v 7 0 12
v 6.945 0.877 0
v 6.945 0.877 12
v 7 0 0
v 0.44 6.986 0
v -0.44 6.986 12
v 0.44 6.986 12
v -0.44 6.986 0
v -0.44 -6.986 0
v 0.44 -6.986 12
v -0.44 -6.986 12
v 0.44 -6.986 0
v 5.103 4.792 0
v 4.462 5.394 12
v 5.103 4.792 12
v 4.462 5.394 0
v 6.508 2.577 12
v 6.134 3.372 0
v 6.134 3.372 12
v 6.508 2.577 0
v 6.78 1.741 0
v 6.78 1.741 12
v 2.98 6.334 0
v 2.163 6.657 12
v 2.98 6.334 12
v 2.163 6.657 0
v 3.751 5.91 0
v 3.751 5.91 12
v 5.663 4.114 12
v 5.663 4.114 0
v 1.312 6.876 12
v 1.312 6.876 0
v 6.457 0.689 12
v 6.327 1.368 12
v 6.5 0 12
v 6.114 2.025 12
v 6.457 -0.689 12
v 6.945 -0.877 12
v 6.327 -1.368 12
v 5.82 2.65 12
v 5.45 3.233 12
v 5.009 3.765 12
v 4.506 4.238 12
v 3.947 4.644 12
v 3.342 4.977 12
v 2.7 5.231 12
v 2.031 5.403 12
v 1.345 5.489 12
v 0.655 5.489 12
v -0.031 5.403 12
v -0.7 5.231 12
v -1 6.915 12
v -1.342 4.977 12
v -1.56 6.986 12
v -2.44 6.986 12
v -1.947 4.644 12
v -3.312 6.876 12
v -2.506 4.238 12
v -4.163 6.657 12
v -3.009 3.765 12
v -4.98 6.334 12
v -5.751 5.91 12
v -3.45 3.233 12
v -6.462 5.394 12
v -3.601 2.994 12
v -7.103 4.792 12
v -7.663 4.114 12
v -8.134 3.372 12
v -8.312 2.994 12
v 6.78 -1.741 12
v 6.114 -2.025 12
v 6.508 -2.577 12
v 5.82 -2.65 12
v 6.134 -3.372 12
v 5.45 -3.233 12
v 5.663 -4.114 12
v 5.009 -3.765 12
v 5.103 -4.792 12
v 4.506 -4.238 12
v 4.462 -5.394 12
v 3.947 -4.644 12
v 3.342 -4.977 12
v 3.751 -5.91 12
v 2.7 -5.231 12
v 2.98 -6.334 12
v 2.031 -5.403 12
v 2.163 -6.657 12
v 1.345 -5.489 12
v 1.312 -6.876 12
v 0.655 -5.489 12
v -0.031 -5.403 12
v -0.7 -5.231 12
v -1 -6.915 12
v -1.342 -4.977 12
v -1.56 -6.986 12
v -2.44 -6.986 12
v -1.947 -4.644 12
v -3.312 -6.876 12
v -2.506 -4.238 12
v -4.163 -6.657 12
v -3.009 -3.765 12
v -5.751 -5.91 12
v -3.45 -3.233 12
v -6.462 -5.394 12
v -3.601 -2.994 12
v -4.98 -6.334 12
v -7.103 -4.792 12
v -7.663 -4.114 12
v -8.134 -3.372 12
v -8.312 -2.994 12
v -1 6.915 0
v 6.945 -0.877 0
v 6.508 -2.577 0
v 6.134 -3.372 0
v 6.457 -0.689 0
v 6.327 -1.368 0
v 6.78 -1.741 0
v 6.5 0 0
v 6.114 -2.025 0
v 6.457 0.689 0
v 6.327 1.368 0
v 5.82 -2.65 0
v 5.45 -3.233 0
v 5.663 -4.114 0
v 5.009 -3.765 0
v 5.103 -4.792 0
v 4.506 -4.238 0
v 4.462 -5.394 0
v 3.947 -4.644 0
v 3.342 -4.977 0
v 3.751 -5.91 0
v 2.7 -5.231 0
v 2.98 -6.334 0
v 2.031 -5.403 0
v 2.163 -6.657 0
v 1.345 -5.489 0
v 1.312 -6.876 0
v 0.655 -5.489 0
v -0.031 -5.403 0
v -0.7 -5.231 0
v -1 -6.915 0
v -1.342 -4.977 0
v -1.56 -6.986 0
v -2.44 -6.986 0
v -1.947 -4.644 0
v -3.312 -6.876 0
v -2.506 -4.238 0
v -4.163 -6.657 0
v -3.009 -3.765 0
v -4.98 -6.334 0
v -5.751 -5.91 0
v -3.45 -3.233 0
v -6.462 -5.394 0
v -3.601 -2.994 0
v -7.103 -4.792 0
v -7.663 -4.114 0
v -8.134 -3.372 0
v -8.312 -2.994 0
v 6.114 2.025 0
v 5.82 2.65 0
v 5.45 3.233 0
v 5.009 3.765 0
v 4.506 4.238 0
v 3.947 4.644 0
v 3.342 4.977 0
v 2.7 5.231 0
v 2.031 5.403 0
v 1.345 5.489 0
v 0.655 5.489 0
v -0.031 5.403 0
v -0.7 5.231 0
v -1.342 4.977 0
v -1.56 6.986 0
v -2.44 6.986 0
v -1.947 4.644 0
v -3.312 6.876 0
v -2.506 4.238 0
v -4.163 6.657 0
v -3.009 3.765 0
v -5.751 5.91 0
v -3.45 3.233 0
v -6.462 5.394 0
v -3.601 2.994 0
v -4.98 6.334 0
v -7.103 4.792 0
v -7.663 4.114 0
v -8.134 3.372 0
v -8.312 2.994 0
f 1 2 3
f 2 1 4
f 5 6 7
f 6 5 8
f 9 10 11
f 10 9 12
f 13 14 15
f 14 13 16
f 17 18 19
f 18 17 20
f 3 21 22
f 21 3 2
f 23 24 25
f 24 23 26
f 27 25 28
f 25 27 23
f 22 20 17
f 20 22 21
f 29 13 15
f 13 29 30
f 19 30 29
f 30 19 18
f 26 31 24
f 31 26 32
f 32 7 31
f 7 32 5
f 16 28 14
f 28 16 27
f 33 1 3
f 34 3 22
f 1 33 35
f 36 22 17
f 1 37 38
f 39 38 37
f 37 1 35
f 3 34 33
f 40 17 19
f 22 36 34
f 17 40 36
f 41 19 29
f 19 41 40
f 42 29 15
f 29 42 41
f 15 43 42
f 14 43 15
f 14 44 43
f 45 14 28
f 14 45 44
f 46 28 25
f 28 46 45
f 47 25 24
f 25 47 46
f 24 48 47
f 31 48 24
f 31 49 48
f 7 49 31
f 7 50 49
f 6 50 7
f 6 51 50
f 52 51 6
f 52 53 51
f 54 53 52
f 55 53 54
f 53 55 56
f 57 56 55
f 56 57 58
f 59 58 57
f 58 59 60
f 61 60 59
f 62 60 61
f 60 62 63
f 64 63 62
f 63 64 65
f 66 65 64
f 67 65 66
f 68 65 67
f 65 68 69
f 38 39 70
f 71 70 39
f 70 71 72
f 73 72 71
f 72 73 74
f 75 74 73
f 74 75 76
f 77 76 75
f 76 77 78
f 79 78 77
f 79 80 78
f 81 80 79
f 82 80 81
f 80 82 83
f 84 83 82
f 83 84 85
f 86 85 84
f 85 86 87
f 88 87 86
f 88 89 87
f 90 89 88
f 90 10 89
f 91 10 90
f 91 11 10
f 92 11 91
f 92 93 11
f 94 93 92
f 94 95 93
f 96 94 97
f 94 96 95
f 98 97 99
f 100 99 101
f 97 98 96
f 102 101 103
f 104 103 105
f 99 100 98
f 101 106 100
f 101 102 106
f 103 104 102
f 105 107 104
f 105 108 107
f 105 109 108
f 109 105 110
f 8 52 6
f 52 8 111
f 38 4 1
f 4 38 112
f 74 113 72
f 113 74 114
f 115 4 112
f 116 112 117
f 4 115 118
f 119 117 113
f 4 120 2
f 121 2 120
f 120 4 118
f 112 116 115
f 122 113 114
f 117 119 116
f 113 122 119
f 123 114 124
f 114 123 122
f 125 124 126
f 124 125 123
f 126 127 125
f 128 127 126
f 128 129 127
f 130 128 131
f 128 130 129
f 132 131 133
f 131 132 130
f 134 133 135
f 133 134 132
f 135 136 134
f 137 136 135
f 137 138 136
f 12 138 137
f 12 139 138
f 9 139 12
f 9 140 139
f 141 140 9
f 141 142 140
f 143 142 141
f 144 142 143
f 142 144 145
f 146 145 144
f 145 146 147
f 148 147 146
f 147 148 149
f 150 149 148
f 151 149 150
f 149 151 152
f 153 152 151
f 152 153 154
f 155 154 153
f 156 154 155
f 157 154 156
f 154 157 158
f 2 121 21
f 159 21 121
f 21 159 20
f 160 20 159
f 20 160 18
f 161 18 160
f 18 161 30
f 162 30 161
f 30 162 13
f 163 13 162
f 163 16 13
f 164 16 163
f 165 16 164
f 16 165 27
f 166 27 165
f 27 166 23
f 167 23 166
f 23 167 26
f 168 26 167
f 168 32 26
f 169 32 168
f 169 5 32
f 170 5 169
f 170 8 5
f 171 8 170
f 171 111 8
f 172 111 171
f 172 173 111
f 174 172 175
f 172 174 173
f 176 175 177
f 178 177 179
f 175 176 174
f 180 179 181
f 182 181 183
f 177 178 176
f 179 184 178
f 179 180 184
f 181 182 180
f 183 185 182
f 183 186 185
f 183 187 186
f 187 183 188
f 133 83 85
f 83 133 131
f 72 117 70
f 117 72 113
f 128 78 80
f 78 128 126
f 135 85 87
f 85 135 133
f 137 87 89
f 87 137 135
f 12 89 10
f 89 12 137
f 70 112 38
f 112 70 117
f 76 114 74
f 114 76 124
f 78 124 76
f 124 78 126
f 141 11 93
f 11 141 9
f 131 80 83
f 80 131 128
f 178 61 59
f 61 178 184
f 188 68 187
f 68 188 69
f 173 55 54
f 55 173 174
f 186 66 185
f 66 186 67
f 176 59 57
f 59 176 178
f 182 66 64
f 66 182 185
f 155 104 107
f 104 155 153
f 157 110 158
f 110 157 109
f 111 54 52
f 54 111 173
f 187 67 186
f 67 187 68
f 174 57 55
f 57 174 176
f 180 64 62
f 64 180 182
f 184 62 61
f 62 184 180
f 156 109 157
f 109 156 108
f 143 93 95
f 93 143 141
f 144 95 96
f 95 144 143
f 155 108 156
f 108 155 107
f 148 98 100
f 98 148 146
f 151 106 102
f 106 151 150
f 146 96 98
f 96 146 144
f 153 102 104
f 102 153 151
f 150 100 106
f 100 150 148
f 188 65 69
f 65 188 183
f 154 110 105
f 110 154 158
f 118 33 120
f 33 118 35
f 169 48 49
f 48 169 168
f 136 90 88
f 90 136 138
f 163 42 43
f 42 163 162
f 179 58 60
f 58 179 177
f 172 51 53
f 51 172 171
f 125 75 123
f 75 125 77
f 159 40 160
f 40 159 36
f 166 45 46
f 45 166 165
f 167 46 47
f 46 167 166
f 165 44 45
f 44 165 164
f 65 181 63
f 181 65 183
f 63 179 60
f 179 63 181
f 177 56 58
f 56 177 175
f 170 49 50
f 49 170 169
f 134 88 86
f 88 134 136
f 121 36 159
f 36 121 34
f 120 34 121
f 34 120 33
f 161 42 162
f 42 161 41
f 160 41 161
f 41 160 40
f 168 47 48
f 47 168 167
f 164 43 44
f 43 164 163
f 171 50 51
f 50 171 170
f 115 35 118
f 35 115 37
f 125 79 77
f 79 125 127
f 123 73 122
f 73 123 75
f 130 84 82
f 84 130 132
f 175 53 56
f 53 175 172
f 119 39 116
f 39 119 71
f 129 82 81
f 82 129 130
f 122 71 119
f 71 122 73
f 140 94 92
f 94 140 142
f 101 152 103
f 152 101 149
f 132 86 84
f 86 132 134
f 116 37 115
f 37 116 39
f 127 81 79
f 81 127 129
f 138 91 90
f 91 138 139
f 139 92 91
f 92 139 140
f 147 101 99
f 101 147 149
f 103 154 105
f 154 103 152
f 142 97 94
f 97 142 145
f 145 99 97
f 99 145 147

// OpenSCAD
$fn = 50;


difference() {
	union() {
		cylinder(h = 12, r = 7.0000000000);
		translate(v = [-2.0000000000, 0, 0]) {
			cylinder(h = 12, r = 7.0000000000);
		}
	}
	union() {
		cylinder(h = 12, r = 3.2500000000);
		cylinder(h = 12, r = 1.8000000000);
		cylinder(h = 12, r = 1.8000000000);
		cylinder(h = 12, r = 1.8000000000);
		translate(v = [-6.5000000000, 0, 0]) {
			hull() {
				translate(v = [-3.7500000000, 0.0000000000, 0]) {
					cylinder(h = 12, r = 3.0000000000);
				}
				translate(v = [3.7500000000, 0.0000000000, 0]) {
					cylinder(h = 12, r = 3.0000000000);
				}
				translate(v = [-3.7500000000, -0.0000000000, 0]) {
					cylinder(h = 12, r = 3.0000000000);
				}
				translate(v = [3.7500000000, -0.0000000000, 0]) {
					cylinder(h = 12, r = 3.0000000000);
				}
			}
		}
		translate(v = [1.0000000000, 0, 0.0000000000]) {
			cylinder(h = 12, r = 5.5000000000);
		}
	}
}
